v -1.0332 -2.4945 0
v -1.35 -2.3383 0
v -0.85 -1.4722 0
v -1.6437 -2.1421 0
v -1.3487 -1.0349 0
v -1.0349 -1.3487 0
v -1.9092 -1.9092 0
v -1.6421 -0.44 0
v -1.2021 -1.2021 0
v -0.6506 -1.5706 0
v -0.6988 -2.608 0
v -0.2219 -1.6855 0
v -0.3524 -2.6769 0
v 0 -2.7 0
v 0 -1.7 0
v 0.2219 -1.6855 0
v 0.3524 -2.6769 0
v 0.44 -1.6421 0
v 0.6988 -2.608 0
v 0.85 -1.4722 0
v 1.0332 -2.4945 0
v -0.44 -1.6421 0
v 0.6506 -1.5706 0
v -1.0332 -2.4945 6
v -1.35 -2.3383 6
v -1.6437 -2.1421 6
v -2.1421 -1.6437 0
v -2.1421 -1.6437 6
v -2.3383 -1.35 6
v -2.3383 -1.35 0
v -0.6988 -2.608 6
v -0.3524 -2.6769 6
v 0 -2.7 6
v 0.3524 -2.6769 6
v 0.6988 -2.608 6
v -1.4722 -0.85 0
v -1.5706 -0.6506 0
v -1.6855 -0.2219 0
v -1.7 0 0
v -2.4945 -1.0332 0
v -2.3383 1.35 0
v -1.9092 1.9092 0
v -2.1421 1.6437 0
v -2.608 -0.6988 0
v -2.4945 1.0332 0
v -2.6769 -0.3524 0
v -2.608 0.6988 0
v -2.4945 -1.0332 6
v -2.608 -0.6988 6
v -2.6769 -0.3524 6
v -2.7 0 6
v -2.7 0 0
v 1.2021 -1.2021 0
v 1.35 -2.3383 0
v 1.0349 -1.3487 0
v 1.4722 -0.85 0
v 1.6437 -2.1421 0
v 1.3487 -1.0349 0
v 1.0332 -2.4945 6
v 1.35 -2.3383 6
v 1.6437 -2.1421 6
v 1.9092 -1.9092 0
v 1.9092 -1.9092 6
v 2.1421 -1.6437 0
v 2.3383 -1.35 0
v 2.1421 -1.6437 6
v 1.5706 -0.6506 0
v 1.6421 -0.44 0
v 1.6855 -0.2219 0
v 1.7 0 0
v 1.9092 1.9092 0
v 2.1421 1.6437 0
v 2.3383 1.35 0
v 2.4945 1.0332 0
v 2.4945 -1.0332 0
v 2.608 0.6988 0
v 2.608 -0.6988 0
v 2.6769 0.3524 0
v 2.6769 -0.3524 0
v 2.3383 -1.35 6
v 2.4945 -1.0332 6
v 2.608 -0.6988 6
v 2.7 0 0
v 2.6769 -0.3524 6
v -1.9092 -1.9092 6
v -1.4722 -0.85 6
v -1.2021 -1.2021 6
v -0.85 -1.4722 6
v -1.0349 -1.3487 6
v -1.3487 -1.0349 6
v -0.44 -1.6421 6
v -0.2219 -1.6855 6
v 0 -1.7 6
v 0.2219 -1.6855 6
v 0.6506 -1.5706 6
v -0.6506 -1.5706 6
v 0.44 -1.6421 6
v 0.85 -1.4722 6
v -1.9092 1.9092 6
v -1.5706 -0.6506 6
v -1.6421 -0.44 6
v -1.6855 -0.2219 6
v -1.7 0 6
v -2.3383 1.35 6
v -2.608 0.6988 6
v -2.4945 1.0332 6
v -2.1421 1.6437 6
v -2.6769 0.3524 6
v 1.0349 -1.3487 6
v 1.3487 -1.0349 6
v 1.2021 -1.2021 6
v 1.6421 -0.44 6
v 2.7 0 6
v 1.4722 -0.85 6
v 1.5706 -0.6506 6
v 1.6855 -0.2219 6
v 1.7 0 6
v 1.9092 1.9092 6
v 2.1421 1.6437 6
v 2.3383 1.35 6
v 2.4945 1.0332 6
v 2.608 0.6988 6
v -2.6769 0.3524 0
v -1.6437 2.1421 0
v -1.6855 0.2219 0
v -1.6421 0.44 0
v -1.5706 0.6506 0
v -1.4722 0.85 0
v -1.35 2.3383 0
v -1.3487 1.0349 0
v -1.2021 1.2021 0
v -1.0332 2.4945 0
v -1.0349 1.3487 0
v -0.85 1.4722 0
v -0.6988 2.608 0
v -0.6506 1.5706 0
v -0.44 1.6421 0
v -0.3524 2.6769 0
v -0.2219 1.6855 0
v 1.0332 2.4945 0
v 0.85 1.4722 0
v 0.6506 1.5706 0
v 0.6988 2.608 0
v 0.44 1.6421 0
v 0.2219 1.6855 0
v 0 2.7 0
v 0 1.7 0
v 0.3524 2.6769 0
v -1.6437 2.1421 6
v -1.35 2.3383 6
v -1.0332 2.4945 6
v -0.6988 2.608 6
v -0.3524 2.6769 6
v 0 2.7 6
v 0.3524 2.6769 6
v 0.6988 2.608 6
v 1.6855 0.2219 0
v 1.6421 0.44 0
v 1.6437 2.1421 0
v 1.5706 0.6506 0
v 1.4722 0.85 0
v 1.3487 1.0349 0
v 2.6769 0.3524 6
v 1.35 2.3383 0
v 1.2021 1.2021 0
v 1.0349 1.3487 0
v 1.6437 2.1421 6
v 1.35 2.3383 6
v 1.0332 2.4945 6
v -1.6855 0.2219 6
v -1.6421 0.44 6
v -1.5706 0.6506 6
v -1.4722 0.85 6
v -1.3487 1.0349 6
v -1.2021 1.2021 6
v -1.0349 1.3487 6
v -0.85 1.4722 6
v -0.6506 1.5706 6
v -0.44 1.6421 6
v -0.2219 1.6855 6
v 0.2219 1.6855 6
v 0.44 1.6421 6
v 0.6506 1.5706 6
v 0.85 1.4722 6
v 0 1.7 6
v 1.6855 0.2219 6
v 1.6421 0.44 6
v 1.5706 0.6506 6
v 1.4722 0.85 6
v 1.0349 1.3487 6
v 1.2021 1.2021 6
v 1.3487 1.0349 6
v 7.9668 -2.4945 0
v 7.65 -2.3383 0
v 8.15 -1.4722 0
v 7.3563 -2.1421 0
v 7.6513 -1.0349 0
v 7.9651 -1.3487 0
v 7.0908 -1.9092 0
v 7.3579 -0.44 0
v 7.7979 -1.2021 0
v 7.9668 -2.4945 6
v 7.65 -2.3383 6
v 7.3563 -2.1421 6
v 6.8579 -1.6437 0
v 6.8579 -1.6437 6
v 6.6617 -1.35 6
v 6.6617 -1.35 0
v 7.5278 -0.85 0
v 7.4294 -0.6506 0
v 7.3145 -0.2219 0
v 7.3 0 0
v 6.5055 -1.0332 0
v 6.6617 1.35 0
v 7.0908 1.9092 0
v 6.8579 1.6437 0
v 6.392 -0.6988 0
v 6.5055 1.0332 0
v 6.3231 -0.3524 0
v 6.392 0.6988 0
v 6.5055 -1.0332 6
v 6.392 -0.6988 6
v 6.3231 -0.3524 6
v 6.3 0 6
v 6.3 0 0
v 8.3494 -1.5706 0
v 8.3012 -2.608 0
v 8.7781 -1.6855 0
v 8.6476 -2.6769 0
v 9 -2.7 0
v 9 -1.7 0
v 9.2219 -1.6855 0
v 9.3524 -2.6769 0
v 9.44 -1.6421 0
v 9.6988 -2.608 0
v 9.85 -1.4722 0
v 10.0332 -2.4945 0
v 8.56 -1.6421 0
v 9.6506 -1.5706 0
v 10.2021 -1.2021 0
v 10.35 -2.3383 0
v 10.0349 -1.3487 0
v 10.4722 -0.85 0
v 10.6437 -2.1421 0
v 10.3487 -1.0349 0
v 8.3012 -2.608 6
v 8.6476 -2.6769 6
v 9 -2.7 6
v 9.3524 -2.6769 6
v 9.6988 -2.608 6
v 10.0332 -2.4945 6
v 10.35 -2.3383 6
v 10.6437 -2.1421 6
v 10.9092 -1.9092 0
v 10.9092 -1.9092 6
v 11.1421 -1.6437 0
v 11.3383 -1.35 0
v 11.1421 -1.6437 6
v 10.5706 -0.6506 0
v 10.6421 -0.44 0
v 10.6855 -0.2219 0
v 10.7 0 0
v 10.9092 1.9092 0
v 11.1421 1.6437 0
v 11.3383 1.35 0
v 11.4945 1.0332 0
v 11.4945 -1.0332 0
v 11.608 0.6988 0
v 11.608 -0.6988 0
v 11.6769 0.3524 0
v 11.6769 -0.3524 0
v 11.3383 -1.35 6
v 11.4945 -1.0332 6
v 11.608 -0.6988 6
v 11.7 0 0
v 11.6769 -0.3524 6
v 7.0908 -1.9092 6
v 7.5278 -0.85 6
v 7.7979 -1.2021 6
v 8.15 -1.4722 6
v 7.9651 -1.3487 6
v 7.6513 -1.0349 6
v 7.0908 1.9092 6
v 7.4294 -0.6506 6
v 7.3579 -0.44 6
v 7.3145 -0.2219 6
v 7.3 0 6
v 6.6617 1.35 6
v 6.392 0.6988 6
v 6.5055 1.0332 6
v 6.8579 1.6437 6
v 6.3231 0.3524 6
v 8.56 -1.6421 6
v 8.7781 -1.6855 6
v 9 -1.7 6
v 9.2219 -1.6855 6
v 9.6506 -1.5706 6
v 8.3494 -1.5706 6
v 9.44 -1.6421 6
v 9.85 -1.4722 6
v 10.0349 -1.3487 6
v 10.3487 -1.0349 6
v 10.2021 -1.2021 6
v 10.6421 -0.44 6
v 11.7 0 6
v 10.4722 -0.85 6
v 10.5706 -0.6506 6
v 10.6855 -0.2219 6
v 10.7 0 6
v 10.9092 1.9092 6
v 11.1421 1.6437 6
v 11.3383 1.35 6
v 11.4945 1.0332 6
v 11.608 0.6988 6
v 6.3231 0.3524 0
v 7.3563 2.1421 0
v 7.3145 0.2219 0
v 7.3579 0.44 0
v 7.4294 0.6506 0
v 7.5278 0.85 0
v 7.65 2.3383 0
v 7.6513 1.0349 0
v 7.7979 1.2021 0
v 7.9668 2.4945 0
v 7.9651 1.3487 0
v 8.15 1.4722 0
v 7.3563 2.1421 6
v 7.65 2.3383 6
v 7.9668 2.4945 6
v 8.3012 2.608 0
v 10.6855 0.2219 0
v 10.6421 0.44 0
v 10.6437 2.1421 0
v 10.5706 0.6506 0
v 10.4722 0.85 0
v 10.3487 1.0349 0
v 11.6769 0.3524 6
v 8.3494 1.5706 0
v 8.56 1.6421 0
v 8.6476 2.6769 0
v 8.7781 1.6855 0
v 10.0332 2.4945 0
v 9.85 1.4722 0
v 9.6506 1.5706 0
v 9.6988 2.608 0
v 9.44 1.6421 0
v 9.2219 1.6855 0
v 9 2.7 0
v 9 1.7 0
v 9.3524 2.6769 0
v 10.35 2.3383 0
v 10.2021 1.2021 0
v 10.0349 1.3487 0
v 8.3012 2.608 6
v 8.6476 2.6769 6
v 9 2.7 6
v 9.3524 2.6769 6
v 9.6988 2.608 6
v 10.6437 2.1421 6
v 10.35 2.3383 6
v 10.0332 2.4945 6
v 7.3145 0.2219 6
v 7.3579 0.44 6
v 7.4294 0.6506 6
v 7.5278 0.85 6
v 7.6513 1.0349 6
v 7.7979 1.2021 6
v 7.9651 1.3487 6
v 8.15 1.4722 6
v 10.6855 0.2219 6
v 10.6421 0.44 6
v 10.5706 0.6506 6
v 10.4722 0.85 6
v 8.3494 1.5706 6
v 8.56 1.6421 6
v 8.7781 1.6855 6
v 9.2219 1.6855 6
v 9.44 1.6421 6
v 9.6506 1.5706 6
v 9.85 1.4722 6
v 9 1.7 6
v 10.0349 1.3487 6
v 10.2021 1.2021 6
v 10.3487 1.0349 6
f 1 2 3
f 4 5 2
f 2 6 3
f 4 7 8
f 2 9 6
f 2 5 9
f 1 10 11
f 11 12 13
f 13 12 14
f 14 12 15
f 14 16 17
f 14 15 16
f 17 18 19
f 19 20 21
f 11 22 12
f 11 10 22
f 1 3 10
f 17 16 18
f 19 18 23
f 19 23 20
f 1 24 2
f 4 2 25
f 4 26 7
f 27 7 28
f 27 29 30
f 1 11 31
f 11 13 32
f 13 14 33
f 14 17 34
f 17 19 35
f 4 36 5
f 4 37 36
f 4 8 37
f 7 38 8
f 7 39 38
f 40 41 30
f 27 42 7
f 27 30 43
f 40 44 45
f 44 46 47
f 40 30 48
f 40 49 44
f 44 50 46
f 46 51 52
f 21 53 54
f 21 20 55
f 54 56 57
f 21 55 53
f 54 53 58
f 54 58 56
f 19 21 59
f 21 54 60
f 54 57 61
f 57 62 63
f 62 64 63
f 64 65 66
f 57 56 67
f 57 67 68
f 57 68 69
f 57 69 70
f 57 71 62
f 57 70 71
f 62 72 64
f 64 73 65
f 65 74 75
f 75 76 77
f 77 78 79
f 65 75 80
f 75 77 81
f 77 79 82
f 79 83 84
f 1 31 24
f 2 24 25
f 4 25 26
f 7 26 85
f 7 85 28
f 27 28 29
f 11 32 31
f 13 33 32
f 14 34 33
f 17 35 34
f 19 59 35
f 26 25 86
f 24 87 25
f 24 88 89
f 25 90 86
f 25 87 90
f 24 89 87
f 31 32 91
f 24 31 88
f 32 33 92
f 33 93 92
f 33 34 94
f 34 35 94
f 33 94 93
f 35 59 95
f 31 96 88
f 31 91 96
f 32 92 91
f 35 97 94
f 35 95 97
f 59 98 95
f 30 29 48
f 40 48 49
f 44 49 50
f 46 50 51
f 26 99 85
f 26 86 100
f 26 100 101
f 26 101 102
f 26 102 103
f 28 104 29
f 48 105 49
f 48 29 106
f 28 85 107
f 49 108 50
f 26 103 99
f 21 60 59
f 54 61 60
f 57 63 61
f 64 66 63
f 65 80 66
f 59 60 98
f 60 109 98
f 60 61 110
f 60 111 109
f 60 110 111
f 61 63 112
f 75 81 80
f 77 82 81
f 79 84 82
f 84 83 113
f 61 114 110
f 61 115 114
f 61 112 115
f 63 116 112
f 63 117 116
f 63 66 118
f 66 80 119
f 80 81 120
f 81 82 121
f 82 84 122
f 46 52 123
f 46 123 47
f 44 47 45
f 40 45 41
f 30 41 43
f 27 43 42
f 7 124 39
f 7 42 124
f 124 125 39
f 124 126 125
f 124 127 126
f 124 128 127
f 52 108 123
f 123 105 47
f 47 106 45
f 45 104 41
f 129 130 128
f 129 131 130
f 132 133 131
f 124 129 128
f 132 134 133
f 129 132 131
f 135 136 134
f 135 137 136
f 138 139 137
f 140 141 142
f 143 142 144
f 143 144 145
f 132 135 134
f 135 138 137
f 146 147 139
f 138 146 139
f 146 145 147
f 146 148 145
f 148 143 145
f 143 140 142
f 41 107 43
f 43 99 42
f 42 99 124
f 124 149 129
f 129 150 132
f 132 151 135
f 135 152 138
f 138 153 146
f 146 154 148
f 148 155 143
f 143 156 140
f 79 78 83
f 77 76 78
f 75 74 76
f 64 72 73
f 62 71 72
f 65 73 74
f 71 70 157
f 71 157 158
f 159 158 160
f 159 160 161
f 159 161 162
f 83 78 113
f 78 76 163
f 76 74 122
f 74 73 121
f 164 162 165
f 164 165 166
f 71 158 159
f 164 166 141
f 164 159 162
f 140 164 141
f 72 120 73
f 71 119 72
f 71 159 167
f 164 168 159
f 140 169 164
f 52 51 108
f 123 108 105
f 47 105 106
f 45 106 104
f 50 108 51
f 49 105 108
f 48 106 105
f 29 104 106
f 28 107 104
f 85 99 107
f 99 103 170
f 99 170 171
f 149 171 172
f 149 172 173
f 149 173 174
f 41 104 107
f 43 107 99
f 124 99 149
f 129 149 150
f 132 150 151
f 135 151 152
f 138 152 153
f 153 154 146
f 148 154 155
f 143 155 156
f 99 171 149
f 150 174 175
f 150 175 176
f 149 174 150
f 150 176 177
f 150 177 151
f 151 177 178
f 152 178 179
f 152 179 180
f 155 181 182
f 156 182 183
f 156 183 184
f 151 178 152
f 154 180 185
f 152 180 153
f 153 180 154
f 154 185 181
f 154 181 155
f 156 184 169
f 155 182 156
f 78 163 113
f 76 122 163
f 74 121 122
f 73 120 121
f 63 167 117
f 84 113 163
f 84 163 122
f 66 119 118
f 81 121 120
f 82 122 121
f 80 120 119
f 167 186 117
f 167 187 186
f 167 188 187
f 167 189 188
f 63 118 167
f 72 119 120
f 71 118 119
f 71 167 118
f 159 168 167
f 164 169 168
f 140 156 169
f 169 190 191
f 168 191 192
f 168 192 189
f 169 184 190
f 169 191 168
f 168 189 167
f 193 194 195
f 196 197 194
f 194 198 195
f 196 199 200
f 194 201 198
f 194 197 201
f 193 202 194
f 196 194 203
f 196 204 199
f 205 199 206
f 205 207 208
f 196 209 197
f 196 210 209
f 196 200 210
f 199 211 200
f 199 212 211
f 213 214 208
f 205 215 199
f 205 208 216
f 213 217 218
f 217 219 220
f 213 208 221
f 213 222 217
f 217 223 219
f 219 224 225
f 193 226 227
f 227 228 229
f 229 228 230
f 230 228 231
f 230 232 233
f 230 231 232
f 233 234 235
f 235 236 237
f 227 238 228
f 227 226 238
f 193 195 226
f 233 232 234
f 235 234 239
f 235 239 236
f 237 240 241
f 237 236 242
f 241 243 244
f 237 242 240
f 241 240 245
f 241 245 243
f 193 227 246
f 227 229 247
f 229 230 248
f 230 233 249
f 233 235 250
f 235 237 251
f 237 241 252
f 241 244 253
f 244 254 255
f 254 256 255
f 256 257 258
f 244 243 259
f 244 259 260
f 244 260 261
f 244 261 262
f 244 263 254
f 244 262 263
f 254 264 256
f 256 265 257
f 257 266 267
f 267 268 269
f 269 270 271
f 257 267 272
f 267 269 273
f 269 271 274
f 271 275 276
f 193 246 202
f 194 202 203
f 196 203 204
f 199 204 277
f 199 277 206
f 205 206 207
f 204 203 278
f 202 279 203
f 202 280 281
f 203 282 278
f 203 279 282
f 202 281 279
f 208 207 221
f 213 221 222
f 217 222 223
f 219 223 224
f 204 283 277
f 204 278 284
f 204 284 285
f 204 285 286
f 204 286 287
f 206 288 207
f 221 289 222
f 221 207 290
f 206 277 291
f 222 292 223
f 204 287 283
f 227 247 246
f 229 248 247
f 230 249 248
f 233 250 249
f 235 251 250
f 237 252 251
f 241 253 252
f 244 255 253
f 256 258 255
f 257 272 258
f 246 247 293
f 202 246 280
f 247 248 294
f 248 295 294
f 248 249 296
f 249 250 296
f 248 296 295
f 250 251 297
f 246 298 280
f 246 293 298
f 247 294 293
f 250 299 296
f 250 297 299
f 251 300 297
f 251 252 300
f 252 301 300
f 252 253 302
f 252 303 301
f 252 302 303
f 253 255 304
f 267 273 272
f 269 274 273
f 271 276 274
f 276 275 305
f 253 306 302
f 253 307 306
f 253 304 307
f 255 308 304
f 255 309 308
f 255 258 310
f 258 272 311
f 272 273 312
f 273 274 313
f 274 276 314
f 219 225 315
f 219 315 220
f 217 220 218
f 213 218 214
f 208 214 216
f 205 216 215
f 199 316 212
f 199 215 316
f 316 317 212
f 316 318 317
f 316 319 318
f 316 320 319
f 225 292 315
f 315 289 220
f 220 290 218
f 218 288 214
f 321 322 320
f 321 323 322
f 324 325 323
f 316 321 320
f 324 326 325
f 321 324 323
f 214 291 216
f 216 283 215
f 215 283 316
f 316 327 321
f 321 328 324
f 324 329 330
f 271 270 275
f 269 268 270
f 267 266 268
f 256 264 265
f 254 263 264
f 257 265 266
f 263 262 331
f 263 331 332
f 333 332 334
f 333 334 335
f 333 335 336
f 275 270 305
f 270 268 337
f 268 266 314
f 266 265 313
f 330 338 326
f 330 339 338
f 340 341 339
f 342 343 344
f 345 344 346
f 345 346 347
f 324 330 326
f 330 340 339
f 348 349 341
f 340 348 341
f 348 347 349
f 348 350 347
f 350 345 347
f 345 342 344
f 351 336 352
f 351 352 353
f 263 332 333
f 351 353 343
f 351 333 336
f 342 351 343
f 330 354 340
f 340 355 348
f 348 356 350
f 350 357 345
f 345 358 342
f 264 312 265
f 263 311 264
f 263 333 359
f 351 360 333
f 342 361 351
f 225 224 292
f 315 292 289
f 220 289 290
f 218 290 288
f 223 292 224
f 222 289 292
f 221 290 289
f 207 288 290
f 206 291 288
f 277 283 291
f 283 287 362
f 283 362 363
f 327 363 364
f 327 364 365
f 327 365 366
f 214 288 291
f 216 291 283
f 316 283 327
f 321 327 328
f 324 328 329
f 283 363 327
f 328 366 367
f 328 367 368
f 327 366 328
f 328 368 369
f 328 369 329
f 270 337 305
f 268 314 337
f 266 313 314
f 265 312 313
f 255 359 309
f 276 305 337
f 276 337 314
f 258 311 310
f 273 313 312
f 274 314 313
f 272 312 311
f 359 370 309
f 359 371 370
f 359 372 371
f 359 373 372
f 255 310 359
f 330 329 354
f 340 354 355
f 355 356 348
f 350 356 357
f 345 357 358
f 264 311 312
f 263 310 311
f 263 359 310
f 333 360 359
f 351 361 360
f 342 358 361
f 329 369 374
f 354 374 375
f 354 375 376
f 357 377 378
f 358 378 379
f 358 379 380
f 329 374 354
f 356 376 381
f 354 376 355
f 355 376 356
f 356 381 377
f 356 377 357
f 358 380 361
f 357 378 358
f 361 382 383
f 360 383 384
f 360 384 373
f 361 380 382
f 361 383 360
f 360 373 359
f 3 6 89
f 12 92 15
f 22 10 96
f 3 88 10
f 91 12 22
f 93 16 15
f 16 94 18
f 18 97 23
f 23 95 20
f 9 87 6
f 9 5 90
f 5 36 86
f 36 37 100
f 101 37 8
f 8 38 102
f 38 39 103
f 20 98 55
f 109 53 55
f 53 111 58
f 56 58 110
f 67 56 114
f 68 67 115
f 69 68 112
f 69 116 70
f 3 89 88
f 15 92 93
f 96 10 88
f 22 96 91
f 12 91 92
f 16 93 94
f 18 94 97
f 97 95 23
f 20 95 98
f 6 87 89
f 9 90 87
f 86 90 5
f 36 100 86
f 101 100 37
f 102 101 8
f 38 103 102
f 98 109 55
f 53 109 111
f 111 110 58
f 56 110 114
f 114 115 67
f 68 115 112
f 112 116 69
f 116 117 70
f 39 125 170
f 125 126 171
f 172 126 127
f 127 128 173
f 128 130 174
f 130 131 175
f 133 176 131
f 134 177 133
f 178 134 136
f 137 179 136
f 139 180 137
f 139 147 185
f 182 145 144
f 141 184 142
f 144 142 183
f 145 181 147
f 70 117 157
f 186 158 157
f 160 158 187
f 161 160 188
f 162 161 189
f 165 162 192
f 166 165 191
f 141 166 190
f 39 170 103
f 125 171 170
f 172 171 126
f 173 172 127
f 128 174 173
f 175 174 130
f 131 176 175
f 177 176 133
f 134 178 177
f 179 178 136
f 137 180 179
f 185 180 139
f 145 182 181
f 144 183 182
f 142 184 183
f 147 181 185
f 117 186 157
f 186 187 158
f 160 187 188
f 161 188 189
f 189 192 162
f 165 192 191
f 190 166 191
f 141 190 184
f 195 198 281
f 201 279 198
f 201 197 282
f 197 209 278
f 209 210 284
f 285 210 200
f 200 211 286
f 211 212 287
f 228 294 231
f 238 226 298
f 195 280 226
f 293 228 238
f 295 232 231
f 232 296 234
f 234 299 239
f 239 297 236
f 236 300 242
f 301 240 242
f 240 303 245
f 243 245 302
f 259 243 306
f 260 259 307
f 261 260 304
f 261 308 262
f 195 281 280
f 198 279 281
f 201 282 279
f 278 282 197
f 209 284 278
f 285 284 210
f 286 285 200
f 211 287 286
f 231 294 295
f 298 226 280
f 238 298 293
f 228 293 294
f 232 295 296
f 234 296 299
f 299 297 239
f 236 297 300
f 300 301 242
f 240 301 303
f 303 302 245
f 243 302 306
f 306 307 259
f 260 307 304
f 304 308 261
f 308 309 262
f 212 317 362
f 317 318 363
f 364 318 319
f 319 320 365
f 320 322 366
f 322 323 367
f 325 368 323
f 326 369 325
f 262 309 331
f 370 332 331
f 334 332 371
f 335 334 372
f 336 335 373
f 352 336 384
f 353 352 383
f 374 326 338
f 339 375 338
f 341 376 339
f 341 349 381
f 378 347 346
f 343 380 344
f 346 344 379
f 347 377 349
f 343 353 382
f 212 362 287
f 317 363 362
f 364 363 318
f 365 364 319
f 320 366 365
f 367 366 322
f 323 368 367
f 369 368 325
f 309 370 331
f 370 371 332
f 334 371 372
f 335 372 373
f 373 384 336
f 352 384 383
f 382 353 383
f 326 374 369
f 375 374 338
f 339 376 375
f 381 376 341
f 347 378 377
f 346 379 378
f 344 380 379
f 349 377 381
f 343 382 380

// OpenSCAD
// Stop sleeves (one spare): slide one over the push rod, onto the solenoid. The joining nut lands on it at rest.
include <../cad/punch_rig_016.scad>
PART = "sleeves";
